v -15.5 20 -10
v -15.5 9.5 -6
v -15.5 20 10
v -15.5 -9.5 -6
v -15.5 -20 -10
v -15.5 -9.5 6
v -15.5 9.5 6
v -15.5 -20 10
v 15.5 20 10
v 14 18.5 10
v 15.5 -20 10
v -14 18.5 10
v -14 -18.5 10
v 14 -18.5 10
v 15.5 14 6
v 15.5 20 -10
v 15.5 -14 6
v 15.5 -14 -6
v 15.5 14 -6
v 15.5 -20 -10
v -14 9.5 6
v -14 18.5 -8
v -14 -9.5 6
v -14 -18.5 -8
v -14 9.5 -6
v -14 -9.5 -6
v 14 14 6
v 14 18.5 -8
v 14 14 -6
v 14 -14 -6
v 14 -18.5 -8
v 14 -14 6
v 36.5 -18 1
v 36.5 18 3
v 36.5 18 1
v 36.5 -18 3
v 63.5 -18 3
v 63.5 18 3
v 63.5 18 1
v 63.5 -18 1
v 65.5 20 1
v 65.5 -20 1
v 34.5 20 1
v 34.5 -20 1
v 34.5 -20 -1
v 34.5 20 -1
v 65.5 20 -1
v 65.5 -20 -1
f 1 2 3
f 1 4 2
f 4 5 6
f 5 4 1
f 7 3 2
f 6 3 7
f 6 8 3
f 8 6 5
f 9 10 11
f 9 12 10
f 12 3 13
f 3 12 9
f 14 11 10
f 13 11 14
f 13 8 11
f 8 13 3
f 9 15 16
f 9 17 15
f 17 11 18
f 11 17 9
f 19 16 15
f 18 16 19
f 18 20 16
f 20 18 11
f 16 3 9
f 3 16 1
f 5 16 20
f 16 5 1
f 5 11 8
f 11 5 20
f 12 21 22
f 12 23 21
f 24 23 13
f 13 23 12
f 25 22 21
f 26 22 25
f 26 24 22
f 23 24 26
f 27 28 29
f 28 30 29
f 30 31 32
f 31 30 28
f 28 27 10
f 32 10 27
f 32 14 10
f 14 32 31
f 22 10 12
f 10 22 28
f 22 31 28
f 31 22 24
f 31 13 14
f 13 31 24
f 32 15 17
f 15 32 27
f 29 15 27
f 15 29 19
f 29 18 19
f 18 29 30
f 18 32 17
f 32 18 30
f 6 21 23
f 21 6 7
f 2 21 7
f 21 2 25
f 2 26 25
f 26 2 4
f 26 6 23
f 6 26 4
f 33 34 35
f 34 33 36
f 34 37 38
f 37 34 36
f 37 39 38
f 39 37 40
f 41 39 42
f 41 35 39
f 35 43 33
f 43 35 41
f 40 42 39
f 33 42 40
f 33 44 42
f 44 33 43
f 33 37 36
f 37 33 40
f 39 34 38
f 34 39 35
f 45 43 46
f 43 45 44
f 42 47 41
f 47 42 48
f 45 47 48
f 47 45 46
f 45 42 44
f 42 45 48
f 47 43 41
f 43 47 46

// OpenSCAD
/*
    tamaño de la caja interna y borde
*/
X=40;
Y=31;
Z=13;
E=4;
$fn=20;

difference() {
    cube([31,X,20],center=true);
    translate([0,0,2])
        cube([31-3,X-3,20],center=true);
    translate([10,0,0])
    cube([20,28,12],center=true);

    translate([-10,0,0])
    cube([20,19,12],center=true);
}

translate([50,0,0]) {
    translate([0,0,2])    
    cube([31-4,X-4,2],center=true);
    cube([31,X,2],center=true);
}
